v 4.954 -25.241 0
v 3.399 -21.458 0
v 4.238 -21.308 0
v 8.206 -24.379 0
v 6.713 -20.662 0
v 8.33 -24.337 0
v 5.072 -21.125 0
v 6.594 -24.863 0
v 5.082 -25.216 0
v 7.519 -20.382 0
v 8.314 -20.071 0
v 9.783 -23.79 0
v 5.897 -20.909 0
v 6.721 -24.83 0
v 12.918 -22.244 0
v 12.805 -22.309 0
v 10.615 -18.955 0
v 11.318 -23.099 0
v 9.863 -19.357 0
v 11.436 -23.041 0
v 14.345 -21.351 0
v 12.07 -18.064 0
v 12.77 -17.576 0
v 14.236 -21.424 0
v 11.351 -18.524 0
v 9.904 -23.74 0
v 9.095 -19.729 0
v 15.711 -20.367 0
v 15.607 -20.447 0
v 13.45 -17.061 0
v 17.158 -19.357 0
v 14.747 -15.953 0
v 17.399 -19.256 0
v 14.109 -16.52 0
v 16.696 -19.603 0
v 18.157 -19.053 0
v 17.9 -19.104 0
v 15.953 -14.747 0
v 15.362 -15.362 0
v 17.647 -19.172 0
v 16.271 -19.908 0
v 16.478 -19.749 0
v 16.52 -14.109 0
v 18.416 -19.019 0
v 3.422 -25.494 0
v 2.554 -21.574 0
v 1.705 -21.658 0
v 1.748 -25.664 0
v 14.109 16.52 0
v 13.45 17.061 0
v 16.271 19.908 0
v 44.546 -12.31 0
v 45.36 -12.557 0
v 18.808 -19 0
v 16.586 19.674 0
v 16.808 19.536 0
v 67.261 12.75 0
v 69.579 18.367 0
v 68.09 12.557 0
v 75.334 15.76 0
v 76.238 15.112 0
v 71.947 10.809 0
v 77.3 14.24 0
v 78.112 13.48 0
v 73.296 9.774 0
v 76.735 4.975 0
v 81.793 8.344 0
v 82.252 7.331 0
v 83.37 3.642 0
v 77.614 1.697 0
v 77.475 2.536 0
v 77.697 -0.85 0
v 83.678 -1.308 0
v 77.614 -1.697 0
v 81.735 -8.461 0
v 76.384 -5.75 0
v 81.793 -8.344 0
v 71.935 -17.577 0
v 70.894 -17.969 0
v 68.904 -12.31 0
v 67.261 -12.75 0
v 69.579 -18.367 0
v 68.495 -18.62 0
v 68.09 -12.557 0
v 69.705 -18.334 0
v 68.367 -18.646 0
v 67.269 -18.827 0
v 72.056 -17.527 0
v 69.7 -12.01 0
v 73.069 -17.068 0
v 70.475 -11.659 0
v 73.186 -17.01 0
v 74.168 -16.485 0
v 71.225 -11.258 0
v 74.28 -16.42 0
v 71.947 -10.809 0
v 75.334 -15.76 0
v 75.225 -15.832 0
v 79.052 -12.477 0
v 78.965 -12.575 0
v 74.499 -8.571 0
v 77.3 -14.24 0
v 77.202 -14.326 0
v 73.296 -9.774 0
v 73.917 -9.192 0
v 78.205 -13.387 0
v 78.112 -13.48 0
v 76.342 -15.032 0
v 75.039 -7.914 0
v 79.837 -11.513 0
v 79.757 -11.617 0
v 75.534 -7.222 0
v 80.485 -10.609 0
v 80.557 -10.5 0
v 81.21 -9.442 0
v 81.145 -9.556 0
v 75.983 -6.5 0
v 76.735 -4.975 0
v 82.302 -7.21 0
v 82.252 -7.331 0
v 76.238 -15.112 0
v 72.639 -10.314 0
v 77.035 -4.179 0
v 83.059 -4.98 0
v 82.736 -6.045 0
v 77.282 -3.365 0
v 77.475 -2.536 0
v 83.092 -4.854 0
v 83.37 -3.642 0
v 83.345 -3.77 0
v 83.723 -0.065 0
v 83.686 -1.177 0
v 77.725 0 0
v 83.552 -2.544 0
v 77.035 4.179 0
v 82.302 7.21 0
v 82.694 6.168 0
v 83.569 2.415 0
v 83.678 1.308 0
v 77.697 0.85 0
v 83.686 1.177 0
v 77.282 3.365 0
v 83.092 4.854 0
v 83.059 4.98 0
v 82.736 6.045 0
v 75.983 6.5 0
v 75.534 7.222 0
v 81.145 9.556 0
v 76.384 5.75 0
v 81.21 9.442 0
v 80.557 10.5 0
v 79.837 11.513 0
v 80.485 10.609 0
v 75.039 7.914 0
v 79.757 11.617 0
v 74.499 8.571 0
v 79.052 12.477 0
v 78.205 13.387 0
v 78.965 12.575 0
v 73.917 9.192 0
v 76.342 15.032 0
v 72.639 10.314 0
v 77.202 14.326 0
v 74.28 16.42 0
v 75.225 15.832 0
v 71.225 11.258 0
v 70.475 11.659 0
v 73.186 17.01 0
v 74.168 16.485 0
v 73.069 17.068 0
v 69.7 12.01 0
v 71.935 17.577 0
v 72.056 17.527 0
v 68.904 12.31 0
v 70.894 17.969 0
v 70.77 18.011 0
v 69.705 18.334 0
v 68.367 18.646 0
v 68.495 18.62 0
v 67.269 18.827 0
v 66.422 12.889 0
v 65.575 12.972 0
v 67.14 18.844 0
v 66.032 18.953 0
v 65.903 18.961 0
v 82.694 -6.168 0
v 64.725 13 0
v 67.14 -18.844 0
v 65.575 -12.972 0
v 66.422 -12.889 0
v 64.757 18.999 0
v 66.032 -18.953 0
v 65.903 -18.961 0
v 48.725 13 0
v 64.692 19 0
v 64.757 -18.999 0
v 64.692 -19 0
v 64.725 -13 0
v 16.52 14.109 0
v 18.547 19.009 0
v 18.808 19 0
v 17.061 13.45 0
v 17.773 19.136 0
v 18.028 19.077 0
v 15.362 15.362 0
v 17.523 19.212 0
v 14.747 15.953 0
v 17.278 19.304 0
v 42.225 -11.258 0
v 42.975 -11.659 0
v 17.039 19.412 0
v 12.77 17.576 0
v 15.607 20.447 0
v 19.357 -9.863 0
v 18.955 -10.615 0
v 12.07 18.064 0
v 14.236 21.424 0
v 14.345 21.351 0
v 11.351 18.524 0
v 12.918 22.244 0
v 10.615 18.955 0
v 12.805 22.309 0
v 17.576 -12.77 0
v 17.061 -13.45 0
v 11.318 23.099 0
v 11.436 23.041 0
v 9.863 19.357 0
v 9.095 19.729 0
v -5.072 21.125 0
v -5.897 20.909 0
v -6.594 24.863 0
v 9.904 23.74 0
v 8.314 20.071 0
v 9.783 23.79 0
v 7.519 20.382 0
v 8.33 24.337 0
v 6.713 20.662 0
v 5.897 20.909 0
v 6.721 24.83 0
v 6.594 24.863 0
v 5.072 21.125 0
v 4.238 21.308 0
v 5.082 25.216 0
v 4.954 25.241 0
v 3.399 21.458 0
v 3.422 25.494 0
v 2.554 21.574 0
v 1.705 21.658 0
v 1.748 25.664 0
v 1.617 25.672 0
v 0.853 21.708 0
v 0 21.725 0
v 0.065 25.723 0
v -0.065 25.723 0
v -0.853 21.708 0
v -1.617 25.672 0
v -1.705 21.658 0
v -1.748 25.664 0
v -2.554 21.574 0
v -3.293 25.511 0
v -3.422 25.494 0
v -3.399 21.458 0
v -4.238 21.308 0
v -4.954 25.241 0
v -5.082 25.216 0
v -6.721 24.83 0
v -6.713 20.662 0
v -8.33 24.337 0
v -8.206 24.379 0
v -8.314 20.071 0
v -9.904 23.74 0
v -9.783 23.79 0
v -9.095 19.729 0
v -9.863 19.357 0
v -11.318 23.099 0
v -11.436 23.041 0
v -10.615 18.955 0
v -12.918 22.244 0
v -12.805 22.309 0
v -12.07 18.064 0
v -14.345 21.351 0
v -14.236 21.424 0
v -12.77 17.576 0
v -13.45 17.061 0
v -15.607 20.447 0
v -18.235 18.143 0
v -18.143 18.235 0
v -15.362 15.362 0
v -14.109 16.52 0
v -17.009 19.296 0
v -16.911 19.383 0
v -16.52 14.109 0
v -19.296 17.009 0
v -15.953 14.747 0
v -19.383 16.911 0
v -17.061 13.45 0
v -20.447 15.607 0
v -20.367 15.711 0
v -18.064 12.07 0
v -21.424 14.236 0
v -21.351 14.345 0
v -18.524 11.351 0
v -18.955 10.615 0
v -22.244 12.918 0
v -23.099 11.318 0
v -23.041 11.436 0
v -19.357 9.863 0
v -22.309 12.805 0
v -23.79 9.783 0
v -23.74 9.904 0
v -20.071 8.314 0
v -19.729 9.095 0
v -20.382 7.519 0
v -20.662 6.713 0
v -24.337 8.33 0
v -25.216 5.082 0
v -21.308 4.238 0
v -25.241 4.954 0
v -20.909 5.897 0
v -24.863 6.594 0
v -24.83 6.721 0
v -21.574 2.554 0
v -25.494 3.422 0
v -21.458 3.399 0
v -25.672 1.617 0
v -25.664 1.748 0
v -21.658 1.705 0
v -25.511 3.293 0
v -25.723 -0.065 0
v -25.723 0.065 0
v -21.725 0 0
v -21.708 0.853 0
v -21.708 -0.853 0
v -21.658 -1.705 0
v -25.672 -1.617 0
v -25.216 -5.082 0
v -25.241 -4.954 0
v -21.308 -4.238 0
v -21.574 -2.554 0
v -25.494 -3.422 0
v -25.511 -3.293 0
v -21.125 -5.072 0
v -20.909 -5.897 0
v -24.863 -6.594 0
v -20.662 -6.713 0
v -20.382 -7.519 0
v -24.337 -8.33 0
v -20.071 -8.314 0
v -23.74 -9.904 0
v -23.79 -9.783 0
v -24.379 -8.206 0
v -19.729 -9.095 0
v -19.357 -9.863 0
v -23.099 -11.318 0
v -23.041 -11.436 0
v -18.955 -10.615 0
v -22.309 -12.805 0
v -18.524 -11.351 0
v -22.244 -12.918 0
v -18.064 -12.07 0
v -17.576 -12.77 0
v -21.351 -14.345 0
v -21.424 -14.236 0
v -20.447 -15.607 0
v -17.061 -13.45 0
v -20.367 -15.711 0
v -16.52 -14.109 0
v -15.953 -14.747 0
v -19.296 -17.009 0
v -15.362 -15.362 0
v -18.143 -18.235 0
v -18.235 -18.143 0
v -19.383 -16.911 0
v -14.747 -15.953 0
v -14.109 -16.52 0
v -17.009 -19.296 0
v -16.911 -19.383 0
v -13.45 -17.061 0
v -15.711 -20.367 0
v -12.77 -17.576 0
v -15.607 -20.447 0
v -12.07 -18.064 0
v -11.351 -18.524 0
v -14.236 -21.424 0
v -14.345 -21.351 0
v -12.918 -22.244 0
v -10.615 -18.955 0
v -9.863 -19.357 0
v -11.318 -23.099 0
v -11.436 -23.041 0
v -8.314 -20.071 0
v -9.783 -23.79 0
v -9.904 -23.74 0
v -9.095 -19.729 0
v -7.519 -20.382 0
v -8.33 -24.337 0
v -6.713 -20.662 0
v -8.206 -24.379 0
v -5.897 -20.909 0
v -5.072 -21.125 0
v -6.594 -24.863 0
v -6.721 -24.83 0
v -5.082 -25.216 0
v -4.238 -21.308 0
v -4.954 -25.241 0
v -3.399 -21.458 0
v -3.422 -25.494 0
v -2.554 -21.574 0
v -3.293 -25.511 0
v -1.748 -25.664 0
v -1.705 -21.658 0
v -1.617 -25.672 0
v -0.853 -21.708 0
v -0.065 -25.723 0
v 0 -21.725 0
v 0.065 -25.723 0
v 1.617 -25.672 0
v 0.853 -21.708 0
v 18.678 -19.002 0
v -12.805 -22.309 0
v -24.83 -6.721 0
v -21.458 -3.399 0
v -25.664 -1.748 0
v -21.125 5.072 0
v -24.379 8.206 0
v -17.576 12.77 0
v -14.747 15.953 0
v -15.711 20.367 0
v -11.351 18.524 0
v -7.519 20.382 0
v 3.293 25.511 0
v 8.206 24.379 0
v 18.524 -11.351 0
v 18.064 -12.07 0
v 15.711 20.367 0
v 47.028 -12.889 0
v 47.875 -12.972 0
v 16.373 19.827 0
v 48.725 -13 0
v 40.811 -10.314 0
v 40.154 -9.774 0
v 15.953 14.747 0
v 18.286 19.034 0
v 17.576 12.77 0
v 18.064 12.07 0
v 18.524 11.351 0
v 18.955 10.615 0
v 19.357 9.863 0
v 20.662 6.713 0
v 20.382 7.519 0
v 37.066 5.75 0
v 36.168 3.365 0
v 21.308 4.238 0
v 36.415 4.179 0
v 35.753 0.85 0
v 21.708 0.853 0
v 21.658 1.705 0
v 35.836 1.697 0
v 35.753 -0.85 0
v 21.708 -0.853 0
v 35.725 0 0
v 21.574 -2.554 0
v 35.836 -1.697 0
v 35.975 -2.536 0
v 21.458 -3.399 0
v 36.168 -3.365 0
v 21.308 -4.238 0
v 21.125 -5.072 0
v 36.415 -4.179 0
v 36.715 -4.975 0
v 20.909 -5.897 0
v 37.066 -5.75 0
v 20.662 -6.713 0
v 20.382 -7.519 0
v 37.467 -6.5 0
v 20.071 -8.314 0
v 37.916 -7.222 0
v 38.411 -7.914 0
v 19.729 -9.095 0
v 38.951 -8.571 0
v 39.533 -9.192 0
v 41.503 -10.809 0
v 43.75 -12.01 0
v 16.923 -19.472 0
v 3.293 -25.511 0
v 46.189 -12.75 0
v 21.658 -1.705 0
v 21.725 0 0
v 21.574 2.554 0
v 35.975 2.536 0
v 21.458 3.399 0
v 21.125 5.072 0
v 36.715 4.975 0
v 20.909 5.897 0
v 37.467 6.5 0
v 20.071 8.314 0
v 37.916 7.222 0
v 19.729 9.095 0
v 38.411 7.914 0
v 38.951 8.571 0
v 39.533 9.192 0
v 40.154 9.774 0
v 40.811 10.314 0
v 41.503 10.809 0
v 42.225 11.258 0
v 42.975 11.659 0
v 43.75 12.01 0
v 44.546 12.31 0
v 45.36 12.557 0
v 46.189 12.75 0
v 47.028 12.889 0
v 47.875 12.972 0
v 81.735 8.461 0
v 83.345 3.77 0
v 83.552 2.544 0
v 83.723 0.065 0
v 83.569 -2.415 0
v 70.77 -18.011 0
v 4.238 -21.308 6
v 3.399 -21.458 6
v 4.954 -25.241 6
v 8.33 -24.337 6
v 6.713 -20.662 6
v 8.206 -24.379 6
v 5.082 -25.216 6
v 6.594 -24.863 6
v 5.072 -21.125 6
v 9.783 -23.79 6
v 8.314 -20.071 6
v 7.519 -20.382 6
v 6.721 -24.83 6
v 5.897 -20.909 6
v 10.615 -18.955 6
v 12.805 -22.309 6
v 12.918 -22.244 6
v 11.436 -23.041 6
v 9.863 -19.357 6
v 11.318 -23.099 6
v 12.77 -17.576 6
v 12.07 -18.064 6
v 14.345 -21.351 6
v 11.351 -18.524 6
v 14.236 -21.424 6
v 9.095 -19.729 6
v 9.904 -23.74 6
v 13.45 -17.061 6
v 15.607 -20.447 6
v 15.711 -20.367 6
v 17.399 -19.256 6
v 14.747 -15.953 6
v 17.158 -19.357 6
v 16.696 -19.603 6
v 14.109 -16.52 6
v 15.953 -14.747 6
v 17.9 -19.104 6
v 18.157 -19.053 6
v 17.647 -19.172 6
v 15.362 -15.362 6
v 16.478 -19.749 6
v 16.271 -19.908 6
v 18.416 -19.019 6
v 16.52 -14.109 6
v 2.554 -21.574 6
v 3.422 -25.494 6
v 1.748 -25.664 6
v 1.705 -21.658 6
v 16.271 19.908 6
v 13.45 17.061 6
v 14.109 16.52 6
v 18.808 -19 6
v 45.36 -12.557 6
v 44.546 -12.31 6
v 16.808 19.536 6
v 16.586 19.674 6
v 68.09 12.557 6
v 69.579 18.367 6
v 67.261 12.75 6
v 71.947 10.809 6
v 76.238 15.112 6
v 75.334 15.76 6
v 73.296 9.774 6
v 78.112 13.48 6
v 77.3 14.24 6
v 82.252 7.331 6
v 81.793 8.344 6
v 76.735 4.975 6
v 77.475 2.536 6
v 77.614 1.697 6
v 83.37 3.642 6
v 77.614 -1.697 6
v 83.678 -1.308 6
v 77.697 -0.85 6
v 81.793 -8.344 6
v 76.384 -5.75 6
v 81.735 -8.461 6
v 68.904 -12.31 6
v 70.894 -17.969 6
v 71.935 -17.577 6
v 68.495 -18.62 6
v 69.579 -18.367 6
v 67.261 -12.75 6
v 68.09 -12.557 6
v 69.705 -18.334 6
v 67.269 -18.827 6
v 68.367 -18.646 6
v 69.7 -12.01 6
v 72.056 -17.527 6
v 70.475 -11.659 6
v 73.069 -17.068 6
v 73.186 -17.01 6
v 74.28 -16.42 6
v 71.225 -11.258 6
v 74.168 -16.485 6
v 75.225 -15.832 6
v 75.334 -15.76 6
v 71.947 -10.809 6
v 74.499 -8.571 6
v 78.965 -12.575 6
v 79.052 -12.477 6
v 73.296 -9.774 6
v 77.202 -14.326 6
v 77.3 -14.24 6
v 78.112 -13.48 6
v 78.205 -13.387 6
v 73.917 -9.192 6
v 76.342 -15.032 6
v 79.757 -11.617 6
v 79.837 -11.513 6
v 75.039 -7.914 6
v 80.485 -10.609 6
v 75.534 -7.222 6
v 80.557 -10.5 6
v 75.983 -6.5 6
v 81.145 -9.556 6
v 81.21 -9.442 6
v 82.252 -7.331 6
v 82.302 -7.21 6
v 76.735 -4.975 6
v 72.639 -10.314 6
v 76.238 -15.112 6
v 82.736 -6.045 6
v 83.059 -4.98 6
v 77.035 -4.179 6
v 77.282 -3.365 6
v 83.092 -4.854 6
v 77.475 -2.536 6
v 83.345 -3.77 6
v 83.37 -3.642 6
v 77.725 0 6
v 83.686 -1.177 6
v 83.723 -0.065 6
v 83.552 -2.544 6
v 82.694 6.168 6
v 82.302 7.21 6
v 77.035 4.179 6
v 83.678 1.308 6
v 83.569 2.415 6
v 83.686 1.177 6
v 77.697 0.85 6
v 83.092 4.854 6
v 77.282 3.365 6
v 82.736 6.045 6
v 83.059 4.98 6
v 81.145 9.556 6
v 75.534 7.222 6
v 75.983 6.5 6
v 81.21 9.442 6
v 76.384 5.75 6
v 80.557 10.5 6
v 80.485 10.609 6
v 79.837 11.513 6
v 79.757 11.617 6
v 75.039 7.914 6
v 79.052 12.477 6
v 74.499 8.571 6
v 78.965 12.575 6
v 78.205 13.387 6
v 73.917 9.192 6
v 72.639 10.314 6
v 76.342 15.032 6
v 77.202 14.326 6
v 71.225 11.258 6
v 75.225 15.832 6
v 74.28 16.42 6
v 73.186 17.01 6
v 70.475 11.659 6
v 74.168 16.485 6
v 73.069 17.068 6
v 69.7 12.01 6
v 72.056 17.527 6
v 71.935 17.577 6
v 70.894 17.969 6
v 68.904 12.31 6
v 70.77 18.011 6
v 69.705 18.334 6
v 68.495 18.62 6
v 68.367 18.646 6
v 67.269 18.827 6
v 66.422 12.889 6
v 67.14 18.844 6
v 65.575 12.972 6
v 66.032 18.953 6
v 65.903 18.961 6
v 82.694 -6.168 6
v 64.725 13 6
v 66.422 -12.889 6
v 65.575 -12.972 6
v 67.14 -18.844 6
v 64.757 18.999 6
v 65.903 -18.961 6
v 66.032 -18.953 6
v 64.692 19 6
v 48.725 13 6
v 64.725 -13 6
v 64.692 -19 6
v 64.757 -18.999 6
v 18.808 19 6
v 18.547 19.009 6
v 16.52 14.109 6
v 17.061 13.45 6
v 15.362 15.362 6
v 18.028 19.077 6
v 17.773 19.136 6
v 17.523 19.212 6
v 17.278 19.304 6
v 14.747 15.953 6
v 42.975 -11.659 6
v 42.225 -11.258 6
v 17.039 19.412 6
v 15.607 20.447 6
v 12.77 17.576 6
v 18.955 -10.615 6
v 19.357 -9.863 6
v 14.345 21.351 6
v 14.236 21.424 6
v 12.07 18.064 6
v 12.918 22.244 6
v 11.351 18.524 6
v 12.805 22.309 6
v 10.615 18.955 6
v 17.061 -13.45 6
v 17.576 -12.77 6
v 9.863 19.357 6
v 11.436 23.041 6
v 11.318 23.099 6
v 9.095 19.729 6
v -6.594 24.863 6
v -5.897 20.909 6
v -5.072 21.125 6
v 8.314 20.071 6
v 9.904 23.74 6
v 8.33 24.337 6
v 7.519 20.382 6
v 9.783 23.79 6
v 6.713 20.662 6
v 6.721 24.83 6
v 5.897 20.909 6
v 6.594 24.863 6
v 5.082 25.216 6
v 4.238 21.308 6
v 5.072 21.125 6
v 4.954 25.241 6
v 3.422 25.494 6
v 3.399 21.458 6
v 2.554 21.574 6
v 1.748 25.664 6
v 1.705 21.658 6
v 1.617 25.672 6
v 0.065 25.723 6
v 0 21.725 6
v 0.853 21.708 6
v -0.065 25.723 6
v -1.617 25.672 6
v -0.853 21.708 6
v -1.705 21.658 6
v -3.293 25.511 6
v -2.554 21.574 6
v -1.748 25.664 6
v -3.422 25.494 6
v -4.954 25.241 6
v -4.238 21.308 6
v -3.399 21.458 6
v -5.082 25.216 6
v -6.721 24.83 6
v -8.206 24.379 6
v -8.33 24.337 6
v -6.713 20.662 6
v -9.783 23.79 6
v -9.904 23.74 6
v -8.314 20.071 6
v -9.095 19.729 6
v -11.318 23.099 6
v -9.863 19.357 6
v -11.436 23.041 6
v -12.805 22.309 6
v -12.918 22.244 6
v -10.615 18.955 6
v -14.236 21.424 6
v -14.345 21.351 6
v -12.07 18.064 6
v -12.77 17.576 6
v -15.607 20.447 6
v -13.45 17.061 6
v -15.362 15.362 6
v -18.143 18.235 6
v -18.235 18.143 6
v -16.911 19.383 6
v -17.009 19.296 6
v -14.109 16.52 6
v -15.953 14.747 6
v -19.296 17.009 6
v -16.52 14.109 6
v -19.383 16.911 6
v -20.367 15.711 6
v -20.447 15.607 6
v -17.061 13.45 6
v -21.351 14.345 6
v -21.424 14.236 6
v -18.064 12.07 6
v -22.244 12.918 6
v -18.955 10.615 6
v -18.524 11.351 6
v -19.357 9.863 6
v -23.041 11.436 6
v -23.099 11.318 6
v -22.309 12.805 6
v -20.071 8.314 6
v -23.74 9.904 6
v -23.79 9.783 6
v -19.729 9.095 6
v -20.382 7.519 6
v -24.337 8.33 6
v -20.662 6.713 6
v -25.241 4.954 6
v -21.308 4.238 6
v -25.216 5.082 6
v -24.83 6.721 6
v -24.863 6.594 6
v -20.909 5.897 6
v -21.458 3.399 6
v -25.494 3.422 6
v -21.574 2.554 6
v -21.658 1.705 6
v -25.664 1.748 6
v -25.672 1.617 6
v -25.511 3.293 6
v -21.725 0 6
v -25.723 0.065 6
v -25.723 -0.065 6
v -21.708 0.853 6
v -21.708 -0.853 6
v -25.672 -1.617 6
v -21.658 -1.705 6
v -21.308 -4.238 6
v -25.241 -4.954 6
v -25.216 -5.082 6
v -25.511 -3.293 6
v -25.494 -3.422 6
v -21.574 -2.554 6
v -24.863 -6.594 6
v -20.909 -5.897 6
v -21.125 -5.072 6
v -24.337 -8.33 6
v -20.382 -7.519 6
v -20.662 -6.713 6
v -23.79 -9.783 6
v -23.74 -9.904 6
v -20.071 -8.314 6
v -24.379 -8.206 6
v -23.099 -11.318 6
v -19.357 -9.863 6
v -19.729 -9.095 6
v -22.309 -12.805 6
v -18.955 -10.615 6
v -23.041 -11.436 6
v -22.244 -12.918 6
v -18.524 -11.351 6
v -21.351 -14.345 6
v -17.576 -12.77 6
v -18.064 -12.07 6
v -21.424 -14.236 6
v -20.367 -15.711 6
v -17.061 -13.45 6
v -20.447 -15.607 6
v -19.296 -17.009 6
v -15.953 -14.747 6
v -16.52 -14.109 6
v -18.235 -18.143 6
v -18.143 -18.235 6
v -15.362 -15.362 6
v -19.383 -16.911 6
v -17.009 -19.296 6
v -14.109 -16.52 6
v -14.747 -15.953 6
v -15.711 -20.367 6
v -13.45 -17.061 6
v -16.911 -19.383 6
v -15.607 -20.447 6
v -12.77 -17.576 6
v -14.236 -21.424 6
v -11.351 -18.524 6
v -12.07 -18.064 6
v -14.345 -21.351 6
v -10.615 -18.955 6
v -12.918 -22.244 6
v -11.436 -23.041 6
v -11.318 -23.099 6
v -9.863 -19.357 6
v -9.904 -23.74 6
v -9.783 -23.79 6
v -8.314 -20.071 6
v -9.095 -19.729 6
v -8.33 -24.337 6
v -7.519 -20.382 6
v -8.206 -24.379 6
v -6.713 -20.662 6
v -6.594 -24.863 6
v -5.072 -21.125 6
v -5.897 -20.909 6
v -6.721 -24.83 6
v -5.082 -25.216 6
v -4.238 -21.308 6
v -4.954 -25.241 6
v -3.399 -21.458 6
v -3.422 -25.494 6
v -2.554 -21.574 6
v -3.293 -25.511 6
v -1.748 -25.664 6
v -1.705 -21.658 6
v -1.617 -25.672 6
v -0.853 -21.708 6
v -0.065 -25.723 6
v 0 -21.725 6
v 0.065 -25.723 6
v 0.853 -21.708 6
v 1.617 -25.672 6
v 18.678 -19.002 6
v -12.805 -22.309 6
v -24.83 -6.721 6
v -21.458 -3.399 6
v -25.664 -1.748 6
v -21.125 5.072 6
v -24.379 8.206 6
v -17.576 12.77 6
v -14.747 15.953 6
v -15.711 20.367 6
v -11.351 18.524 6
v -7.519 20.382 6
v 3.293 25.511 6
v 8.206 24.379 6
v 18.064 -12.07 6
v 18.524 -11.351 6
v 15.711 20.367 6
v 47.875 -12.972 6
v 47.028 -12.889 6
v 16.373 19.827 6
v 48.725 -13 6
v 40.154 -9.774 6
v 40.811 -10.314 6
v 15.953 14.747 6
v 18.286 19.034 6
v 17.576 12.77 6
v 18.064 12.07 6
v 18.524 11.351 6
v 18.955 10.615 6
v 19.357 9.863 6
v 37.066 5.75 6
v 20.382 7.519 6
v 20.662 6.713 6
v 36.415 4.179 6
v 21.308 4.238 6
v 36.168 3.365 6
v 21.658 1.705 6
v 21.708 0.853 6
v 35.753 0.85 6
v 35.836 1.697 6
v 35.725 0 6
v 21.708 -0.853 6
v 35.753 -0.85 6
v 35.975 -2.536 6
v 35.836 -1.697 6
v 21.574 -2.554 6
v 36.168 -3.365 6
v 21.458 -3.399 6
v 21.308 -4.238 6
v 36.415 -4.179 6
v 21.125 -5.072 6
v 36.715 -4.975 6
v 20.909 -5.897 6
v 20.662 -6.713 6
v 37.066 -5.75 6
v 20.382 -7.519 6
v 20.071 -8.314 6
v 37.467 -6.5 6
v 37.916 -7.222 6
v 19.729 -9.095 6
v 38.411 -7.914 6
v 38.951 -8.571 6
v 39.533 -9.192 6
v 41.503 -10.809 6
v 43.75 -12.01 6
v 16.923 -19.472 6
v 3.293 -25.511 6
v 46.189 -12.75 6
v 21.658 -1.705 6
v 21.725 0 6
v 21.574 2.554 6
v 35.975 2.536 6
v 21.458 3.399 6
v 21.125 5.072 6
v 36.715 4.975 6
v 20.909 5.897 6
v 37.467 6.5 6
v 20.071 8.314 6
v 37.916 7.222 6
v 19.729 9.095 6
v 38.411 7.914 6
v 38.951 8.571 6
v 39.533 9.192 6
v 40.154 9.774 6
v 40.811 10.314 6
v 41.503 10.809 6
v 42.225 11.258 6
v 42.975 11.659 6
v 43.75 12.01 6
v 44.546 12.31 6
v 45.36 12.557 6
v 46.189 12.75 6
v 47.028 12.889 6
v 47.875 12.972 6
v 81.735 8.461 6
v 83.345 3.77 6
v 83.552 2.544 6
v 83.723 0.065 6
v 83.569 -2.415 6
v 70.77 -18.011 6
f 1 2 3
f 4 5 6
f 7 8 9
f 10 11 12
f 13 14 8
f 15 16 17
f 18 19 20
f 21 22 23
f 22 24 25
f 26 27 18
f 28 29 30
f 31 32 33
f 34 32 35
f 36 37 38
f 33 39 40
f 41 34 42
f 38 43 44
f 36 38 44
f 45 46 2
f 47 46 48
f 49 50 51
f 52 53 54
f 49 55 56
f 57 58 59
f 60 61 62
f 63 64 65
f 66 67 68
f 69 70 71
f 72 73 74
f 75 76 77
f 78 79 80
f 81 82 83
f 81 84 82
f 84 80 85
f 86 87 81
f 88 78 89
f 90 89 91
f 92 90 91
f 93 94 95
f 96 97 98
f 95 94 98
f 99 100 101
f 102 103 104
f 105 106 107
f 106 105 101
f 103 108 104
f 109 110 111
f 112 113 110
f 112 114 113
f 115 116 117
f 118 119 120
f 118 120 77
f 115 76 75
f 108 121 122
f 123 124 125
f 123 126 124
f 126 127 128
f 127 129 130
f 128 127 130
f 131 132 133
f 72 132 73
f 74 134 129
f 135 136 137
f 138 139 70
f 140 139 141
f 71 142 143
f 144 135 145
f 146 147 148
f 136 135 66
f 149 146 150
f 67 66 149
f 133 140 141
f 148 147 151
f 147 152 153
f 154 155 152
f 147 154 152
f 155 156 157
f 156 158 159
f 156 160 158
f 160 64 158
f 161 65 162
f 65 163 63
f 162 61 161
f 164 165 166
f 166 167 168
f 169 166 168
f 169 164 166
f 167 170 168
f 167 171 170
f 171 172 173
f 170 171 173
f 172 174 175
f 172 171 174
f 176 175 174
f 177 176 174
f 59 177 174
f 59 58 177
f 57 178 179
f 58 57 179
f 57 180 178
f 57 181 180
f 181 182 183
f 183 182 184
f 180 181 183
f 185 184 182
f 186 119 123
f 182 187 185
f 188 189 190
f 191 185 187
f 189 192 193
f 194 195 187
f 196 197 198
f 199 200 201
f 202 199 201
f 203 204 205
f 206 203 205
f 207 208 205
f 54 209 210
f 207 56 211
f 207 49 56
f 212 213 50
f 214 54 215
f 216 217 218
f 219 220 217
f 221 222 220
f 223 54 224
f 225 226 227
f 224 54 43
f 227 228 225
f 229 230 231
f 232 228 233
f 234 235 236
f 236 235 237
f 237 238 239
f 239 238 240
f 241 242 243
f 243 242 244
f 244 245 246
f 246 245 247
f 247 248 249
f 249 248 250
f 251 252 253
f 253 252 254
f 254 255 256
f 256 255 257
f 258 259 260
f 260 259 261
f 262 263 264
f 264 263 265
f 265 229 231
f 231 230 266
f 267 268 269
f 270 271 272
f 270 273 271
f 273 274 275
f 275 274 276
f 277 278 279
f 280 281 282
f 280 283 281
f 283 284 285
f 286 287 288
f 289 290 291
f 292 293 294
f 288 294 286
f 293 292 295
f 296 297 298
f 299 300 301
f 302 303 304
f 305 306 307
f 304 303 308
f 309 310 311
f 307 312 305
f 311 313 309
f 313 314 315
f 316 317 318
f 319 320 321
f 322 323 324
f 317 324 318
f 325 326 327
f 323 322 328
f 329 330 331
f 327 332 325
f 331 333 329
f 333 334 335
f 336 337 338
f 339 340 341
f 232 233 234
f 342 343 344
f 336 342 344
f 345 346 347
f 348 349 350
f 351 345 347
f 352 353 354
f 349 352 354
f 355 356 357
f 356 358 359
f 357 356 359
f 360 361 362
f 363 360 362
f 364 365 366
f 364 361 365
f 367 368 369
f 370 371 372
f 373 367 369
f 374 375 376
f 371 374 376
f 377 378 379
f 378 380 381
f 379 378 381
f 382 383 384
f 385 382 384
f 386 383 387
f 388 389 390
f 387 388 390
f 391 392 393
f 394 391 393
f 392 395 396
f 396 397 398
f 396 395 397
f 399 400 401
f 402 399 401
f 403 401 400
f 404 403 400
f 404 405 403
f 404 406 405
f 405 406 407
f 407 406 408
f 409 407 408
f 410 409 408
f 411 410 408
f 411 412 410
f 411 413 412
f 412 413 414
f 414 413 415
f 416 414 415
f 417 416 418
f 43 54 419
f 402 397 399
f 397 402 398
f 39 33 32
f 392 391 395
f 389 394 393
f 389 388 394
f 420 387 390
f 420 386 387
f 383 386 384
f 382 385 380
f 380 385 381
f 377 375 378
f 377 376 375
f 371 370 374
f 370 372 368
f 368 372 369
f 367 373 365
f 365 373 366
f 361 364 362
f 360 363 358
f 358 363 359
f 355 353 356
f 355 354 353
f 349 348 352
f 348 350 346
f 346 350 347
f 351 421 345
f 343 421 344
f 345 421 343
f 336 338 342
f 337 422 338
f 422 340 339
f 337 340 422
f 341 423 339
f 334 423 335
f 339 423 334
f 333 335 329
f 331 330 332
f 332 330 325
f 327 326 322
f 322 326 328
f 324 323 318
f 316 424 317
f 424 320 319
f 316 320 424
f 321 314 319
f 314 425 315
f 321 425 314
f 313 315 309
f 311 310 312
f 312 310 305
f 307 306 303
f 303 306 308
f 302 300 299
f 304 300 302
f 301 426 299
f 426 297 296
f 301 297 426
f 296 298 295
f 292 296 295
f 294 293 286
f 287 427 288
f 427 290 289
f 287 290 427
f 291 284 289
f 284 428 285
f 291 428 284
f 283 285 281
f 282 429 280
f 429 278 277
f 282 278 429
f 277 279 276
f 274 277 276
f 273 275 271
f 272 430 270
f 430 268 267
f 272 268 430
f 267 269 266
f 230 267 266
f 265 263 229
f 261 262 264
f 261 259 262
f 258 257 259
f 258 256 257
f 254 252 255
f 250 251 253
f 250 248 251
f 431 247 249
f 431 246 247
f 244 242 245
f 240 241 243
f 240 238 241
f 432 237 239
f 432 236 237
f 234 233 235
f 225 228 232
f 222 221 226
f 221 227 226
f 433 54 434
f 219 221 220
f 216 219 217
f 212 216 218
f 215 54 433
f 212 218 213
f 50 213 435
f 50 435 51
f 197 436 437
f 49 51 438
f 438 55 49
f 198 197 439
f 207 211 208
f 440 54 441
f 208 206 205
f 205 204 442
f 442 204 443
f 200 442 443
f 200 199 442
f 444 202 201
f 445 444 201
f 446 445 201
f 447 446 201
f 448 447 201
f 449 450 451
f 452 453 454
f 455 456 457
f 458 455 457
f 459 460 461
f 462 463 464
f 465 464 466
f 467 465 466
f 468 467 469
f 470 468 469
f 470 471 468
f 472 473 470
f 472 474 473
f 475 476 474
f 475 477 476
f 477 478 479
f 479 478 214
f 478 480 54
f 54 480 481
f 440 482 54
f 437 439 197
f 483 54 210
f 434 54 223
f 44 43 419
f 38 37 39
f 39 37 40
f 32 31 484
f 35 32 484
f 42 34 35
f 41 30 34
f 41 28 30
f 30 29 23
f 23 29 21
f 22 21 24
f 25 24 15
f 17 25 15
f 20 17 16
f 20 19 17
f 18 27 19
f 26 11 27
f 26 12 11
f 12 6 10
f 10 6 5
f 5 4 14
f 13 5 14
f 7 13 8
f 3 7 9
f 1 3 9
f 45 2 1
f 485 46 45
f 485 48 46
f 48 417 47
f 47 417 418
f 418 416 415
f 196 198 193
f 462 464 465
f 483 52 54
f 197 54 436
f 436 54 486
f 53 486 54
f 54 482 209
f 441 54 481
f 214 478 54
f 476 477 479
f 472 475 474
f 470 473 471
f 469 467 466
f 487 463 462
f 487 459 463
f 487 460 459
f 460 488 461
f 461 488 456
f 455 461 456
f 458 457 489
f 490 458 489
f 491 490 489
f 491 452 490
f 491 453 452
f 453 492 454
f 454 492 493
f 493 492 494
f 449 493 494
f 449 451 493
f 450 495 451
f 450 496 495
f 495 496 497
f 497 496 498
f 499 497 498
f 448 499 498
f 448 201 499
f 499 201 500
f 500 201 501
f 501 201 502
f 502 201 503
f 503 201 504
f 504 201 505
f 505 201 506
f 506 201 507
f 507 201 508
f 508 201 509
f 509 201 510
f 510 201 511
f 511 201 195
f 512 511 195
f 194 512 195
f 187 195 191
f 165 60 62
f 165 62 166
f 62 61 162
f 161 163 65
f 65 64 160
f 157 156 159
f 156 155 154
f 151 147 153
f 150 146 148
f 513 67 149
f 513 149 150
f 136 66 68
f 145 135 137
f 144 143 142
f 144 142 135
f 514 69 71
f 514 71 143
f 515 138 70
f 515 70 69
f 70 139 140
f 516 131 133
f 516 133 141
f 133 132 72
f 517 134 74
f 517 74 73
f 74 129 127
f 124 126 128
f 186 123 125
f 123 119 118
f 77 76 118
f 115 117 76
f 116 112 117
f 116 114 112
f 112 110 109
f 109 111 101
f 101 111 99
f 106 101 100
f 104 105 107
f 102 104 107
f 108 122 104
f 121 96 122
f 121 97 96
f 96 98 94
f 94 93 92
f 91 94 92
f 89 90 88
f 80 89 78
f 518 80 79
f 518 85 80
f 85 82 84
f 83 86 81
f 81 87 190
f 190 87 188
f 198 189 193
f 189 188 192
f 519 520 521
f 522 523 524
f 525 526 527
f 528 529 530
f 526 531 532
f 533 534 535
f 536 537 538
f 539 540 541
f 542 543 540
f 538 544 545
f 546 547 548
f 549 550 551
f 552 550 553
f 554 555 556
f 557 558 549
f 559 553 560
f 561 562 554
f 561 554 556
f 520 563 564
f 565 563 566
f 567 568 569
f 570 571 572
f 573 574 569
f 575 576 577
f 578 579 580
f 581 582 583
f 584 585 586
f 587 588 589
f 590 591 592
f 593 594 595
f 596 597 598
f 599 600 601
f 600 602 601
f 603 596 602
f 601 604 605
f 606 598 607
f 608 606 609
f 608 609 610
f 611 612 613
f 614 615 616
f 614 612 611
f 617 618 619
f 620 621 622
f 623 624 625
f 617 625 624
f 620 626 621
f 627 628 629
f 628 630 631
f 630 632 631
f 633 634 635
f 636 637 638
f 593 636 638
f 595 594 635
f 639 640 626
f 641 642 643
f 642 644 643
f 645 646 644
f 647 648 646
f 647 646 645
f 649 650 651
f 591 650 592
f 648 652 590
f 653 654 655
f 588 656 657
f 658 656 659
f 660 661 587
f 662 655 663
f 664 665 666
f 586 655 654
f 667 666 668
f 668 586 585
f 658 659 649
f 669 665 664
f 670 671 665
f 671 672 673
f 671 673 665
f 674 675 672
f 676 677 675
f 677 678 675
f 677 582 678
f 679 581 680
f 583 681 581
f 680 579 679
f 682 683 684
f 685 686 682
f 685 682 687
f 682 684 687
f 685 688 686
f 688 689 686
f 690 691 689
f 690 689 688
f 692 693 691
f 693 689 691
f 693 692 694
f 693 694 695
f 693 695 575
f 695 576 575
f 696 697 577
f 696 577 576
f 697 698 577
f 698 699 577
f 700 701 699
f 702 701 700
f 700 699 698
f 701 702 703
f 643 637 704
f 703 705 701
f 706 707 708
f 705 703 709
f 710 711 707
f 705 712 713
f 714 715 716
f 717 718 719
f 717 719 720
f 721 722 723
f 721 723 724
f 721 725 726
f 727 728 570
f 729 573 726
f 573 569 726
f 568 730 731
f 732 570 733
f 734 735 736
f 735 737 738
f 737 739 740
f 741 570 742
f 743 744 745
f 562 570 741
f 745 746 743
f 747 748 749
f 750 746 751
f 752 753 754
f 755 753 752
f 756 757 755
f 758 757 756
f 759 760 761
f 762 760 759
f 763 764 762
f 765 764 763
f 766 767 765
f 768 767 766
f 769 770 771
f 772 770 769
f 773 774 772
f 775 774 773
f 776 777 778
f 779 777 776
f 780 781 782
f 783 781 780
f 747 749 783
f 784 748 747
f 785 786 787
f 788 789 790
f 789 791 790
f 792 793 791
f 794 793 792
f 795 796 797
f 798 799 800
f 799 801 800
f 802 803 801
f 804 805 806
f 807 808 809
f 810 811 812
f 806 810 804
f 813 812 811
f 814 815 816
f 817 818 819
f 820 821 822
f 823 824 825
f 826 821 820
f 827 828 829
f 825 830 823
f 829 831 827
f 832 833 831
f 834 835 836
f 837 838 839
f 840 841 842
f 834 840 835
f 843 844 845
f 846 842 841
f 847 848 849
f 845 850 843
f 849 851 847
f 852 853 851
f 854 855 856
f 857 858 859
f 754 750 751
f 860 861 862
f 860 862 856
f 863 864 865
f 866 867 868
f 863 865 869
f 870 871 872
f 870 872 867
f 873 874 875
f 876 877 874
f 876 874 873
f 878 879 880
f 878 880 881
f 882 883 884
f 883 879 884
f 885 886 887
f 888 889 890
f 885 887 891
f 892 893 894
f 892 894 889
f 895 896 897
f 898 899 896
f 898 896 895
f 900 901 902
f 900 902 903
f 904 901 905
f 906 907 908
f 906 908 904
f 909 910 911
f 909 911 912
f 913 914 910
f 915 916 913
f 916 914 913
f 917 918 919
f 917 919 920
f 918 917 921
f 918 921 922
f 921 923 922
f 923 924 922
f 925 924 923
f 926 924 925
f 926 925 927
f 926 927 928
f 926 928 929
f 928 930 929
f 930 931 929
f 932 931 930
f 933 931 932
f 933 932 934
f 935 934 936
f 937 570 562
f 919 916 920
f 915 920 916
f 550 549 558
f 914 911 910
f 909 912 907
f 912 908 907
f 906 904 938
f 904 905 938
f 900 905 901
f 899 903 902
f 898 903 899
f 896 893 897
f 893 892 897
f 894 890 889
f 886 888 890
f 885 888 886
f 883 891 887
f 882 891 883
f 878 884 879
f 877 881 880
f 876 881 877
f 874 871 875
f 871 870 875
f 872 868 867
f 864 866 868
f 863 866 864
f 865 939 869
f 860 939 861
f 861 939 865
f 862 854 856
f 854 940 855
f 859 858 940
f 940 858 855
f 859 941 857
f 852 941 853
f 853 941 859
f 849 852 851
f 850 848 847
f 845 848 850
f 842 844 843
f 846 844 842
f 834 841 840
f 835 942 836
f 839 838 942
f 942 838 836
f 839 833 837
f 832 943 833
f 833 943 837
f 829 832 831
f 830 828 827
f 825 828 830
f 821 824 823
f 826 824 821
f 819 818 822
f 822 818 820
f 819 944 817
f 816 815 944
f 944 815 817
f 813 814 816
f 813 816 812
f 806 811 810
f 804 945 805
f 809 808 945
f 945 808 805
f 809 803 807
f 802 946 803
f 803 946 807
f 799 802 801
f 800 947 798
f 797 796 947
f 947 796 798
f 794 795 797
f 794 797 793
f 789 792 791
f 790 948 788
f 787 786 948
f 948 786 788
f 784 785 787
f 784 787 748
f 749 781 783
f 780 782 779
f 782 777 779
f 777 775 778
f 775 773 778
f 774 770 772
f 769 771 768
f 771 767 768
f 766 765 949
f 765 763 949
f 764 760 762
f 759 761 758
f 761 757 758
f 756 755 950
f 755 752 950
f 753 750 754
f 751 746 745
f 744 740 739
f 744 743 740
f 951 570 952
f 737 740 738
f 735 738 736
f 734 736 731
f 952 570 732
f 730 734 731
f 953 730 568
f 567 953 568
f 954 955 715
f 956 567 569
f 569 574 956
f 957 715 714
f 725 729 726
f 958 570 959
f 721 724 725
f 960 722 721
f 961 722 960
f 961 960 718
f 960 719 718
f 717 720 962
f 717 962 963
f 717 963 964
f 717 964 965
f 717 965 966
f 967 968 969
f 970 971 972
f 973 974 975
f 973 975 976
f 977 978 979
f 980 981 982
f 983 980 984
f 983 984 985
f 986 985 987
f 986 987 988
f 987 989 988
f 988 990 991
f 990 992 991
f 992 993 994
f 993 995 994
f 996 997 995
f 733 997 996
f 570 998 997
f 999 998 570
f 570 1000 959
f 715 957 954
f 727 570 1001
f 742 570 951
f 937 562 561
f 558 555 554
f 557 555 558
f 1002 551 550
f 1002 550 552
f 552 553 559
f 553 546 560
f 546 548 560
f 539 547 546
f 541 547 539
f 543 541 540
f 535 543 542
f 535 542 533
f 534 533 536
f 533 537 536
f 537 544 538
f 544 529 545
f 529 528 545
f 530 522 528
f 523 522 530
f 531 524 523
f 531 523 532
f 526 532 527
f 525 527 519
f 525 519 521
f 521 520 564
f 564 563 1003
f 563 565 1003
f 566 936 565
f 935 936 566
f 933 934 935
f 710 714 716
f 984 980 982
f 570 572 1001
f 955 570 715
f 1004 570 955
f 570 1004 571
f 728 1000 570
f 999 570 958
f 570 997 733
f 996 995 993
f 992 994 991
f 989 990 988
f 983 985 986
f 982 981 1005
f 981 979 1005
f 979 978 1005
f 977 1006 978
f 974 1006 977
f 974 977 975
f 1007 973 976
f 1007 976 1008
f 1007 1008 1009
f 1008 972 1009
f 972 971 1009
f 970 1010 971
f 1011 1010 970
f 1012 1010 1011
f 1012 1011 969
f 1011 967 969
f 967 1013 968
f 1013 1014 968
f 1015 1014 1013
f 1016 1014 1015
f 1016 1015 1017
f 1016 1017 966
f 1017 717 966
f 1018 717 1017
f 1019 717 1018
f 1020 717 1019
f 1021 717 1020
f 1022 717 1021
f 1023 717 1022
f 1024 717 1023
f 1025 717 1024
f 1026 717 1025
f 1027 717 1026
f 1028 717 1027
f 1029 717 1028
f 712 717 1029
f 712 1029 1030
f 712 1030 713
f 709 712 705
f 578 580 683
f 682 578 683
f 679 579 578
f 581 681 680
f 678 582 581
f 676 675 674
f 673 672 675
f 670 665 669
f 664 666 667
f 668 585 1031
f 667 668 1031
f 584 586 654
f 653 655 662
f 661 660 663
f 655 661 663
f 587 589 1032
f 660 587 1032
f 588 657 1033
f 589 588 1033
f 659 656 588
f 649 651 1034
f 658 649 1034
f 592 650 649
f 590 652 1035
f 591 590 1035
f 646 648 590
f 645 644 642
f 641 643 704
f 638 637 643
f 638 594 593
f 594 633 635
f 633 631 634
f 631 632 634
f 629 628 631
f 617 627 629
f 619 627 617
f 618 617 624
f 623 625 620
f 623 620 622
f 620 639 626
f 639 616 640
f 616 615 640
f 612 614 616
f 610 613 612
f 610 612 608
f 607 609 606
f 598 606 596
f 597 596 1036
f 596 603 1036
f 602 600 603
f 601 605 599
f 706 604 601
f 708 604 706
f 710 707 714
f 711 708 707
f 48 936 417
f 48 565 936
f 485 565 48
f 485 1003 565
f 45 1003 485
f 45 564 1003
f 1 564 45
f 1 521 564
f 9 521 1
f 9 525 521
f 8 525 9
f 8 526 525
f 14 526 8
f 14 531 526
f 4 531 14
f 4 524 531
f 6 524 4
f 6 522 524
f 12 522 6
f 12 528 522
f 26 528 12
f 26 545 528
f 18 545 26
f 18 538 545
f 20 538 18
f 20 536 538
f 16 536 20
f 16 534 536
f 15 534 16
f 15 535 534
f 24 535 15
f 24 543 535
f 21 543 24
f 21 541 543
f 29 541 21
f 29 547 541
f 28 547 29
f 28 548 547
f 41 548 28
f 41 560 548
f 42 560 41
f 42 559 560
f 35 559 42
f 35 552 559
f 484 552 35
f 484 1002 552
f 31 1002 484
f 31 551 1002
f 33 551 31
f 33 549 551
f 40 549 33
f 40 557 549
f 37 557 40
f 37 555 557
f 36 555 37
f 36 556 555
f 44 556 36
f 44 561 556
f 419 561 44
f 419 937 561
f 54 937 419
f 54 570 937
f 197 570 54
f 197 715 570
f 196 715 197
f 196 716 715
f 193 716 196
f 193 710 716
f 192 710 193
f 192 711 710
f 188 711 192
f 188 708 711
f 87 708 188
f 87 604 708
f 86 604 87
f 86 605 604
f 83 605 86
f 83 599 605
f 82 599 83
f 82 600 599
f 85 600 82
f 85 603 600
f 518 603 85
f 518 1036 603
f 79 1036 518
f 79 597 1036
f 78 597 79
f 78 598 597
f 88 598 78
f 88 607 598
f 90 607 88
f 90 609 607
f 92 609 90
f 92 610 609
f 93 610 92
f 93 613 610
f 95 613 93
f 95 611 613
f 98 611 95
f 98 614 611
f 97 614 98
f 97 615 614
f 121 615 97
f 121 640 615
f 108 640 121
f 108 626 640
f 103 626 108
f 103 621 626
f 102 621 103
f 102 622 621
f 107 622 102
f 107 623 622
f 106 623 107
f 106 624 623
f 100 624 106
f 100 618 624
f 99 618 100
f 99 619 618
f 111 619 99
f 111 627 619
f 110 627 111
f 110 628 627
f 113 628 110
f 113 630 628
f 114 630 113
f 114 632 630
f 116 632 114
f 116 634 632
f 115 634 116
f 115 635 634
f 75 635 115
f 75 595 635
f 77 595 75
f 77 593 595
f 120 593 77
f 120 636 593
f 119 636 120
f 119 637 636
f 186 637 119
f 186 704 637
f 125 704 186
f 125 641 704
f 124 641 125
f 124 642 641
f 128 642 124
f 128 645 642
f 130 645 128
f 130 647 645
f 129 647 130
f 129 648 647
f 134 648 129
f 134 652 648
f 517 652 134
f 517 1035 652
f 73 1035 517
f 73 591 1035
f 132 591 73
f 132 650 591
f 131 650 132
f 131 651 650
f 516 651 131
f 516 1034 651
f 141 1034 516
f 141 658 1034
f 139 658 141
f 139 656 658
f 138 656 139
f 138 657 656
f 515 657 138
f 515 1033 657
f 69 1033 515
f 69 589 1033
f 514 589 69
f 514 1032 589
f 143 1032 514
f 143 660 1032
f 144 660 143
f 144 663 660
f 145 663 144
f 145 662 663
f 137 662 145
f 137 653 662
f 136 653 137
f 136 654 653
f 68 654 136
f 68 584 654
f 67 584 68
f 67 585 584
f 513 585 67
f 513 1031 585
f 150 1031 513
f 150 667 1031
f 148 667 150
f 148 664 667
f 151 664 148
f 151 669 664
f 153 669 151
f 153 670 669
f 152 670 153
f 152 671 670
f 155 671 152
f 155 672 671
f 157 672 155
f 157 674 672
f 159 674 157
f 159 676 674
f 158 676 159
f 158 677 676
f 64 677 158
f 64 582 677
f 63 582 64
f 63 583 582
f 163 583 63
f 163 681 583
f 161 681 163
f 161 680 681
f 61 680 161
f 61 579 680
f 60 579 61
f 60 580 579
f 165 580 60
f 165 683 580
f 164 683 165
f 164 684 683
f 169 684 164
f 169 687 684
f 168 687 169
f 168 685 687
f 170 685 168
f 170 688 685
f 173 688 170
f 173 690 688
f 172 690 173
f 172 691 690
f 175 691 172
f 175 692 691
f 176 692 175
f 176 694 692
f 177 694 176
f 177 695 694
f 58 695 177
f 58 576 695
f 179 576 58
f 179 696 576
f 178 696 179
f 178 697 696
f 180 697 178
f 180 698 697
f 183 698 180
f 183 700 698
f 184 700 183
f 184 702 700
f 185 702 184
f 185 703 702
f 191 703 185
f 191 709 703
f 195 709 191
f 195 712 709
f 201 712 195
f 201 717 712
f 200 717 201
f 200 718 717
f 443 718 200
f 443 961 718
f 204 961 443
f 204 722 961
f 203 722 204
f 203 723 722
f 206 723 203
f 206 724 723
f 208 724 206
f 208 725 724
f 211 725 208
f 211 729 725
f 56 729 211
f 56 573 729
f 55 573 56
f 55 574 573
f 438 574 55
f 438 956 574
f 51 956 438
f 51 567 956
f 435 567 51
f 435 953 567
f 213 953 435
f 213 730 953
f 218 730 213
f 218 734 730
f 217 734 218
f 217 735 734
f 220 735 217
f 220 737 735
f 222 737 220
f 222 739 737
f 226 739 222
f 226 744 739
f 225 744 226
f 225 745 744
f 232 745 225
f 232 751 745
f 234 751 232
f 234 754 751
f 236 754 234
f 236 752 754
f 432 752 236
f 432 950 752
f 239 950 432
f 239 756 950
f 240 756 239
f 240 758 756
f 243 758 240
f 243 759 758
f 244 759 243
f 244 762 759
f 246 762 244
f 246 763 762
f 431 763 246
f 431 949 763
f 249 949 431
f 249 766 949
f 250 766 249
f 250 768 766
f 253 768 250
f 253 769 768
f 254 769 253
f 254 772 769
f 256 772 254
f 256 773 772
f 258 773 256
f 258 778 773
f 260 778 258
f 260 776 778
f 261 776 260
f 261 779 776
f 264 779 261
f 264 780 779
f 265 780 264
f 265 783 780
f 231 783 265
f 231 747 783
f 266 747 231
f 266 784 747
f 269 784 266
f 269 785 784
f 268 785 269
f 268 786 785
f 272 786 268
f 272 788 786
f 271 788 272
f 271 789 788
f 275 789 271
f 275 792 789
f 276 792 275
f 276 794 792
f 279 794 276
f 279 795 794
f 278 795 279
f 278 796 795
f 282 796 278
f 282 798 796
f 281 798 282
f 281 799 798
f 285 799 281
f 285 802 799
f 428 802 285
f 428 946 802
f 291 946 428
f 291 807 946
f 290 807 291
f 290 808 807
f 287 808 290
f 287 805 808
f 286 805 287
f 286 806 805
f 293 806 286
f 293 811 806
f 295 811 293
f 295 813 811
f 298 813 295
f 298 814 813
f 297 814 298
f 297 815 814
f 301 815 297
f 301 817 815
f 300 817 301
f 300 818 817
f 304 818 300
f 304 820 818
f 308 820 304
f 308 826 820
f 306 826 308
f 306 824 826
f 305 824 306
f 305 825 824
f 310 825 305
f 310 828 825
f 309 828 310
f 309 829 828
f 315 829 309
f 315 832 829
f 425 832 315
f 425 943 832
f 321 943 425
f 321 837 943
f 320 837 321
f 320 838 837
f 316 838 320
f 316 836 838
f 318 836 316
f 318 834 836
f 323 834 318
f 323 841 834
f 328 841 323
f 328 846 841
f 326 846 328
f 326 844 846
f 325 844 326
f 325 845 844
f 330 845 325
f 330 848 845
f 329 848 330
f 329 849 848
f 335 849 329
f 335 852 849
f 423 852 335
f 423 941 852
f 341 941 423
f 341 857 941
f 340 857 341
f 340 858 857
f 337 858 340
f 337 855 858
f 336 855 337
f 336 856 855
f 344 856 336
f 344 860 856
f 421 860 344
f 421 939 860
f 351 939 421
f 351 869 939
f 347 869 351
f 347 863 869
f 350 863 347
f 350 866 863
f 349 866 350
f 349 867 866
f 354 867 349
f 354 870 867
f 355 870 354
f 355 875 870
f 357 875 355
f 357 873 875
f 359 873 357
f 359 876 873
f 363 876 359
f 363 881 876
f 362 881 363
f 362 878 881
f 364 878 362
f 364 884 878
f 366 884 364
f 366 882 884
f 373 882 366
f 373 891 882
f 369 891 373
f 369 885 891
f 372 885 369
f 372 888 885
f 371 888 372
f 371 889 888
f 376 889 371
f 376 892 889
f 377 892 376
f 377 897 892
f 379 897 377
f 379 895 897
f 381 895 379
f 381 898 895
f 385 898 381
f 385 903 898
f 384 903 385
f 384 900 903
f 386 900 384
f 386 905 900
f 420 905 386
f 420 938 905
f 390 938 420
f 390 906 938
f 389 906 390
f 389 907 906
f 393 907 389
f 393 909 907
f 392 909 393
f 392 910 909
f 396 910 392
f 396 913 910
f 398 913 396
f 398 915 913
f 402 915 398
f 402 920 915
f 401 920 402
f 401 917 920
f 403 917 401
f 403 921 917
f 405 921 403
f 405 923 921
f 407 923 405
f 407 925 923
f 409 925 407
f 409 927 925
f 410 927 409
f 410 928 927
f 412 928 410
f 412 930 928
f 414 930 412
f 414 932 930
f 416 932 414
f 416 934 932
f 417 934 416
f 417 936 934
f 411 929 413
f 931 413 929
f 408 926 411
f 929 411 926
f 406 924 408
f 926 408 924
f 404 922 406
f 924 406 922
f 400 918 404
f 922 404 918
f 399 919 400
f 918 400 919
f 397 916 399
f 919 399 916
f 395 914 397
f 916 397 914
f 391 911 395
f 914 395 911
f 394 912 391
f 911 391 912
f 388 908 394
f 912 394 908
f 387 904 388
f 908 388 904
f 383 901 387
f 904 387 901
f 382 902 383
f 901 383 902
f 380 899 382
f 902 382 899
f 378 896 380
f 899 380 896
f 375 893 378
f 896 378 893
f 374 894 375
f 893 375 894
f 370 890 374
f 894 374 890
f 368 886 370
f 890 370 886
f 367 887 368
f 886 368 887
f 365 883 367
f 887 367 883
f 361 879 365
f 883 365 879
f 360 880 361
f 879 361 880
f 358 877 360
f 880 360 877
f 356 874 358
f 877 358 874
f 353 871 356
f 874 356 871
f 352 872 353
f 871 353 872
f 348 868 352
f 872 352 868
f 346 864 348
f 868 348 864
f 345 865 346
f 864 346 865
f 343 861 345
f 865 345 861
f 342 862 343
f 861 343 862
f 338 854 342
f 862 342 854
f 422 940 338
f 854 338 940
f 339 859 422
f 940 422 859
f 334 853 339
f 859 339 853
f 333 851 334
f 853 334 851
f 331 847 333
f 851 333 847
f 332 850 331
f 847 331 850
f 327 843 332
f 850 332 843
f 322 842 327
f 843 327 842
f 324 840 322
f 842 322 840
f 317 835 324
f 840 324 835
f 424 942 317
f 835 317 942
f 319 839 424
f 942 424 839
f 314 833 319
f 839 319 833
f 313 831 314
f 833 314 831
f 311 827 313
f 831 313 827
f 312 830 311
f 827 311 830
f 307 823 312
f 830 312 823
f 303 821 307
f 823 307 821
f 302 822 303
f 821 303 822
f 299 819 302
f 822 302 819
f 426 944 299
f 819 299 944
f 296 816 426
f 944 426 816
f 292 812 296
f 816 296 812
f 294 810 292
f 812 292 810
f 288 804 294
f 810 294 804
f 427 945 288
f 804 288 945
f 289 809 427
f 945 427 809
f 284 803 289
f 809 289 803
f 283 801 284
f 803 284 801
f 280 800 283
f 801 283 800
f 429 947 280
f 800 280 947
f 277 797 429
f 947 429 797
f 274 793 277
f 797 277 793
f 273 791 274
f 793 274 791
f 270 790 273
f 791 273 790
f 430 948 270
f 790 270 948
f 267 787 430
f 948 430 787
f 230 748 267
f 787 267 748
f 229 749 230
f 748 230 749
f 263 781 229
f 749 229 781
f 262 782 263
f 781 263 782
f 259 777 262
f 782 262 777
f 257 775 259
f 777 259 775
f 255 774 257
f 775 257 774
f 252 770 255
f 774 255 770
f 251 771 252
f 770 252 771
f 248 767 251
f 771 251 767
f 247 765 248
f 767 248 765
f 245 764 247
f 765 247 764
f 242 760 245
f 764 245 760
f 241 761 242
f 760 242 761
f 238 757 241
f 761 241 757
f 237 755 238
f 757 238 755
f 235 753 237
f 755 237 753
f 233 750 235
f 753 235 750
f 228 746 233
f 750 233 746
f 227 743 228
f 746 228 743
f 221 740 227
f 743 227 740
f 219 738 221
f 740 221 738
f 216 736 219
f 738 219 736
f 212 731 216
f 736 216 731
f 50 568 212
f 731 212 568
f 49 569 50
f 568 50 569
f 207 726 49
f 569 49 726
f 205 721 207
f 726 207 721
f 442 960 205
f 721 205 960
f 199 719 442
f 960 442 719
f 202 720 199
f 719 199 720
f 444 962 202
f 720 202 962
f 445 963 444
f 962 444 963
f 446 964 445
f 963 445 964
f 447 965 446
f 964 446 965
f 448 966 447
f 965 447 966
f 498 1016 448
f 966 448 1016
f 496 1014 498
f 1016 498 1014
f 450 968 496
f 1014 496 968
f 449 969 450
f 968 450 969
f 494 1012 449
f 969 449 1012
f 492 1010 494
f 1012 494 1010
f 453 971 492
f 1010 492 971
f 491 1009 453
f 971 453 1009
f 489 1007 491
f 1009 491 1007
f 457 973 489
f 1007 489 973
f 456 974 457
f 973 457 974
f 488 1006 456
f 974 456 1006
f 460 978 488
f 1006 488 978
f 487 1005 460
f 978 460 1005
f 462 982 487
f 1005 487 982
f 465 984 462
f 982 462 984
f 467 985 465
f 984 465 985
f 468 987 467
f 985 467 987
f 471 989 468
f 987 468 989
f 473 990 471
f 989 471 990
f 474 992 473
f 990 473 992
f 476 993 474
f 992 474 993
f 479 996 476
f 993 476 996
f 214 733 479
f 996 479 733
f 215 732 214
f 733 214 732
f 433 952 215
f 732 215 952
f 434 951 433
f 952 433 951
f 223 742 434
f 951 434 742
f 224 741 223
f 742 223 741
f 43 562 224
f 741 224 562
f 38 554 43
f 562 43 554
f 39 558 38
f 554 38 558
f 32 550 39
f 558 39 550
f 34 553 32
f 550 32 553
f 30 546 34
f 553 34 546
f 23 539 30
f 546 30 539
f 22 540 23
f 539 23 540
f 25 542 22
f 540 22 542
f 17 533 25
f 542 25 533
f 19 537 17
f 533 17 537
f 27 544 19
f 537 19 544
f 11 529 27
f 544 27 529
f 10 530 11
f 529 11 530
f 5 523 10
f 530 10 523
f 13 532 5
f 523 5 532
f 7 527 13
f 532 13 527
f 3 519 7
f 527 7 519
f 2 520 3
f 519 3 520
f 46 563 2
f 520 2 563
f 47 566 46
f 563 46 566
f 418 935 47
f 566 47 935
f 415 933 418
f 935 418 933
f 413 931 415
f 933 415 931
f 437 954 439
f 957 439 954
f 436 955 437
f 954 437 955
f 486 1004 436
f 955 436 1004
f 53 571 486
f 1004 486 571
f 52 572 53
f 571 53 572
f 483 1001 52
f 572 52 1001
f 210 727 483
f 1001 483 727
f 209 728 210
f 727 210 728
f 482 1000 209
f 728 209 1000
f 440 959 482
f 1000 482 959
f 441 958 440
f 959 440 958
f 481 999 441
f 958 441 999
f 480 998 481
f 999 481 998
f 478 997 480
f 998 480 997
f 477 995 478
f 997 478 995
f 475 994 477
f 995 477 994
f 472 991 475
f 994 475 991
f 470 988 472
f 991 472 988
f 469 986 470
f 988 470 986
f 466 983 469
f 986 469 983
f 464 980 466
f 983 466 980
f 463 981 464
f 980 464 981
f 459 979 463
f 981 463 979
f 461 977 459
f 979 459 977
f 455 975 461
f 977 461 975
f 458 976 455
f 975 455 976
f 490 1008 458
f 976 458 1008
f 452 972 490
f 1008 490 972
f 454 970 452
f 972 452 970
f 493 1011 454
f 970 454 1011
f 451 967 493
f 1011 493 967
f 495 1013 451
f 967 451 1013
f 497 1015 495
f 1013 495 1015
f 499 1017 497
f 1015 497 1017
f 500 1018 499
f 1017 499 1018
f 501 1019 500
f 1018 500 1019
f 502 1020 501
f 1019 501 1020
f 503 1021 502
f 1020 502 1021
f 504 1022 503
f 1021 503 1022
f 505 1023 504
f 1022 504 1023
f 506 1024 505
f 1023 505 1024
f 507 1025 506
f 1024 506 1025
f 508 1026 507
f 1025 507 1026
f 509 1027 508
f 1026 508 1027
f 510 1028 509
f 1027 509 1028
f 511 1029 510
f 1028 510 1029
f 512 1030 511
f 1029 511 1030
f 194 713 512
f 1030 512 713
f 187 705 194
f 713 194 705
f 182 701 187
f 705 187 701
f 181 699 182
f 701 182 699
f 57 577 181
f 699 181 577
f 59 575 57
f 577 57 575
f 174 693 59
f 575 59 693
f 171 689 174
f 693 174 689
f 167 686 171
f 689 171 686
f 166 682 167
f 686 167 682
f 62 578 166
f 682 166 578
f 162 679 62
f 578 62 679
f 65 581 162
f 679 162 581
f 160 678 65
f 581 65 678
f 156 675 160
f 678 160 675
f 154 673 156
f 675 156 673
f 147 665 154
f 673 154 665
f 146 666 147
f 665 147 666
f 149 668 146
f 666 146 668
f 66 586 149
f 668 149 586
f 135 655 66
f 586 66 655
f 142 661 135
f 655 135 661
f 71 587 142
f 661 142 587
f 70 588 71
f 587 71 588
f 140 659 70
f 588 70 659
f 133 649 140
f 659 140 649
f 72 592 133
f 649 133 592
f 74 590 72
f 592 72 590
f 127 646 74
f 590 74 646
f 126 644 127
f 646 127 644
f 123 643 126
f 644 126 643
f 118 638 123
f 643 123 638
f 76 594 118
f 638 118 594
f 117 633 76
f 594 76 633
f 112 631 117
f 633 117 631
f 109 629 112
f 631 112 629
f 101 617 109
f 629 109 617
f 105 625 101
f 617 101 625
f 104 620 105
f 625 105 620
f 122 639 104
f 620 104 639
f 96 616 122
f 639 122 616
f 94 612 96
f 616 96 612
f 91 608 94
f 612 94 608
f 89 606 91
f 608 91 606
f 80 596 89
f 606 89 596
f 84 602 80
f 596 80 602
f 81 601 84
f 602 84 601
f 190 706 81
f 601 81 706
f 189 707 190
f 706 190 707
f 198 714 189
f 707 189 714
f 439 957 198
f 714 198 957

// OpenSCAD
// TEMPLATE: ring-and-loop carry handle — a ring that sits around a neck (bottle, jar, cable) with a finger loop; optional finger scallops
// Interfaces: neck_id (the neck's outer diameter) + clearance -> bore. Origin at the bore axis, ring bottom on z = 0.
// Load path: loop -> tangent bridges -> ring. Print flat (ring on bed) so the carry load runs along the layers.

/* [Interface] */
neck_id = 43.2;          // [20:0.1:90]
clearance = 0.25;        // [0:0.05:0.8]
ring_height = 6;         // [3:0.5:20]
ring_wall = 4;           // [2:0.5:10]

/* [Loop] */
loop_inner_w = 42;       // [25:1:80]
loop_inner_h = 26;       // [15:1:45]
loop_thick = 6;          // [4:0.5:14]
bridge_len = 4;          // [0:0.5:20]  straight bridge between ring and loop (keeps the bore closed)
fillet_r = 4;            // [0:0.5:10]  fillet where bridges meet ring and loop
scallops = false;         // finger scallops on the inside long edges
scallop_depth = 1.5;     // [0:0.25:4]

/* [Render] */
render_target = "part";  // [part, coupon, assembly]

/* [Hidden] */
$fn = 96;
bore = neck_id + clearance;
ring_od = bore + 2 * ring_wall;
loop_cx = ring_od / 2 + bridge_len + loop_inner_w / 2 + loop_thick;   // loop center on +X
loop_ow = loop_inner_w + 2 * loop_thick;
loop_oh = loop_inner_h + 2 * loop_thick;

assert(bridge_len >= 0, "bridge_len must be >= 0");
assert(loop_inner_h > 2 * scallop_depth + 10, "scallops too deep for the loop height");
echo(bore = bore, ring_od = ring_od, overall_length = ring_od + bridge_len + loop_ow);

module stadium2d(w, h) { hull() { translate([-(w - h) / 2, 0]) circle(d = h); translate([(w - h) / 2, 0]) circle(d = h); } }

module outline2d() {
    // ring + bridges + loop as a 2D union, with fillets by offset trick
    offset(r = -fillet_r) offset(r = fillet_r) union() {
        circle(d = ring_od);
        translate([loop_cx, 0]) stadium2d(loop_ow, loop_oh);
        // solid bridge from the ring to the loop, as tall as the loop, so the load path has no waist or notch
        translate([0, -loop_oh / 2]) square([loop_cx, loop_oh]);
    }
}

module openings2d() {
    circle(d = bore, $fn = 160);
    translate([loop_cx, 0]) difference() {
        stadium2d(loop_inner_w, loop_inner_h);
        if (scallops) for (s = [-1, 1]) for (i = [-1, 1])
            translate([i * loop_inner_w / 4, s * (loop_inner_h / 2 + loop_inner_w / 4 - scallop_depth)]) circle(r = loop_inner_w / 4);
    }
}

module part() {
    linear_extrude(height = ring_height) difference() { outline2d(); openings2d(); }
}

module coupon() {
    // three rings, mating feature only: clearance -0.2 / 0 / +0.2, embossed labels
    for (i = [-1, 0, 1]) translate([i * (bore + 10), 0, 0]) {
        difference() { cylinder(d = bore + i * 0.2 + 2 * 2.4, h = 3); translate([0, 0, -1]) cylinder(d = bore + i * 0.2, h = 5, $fn = 160); }
        translate([0, (bore + 2 * 2.4) / 2 + 3, 0]) linear_extrude(1) text(str(i * 0.2), size = 4, halign = "center");
    }
}

module assembly() {
    part();
    %translate([0, 0, -3]) cylinder(d = neck_id, h = ring_height + 6);
    %translate([0, 0, ring_height + 0.3]) cylinder(d = neck_id + 18, h = 3);
}

if (render_target == "part") part();
else if (render_target == "coupon") coupon();
else assembly();
